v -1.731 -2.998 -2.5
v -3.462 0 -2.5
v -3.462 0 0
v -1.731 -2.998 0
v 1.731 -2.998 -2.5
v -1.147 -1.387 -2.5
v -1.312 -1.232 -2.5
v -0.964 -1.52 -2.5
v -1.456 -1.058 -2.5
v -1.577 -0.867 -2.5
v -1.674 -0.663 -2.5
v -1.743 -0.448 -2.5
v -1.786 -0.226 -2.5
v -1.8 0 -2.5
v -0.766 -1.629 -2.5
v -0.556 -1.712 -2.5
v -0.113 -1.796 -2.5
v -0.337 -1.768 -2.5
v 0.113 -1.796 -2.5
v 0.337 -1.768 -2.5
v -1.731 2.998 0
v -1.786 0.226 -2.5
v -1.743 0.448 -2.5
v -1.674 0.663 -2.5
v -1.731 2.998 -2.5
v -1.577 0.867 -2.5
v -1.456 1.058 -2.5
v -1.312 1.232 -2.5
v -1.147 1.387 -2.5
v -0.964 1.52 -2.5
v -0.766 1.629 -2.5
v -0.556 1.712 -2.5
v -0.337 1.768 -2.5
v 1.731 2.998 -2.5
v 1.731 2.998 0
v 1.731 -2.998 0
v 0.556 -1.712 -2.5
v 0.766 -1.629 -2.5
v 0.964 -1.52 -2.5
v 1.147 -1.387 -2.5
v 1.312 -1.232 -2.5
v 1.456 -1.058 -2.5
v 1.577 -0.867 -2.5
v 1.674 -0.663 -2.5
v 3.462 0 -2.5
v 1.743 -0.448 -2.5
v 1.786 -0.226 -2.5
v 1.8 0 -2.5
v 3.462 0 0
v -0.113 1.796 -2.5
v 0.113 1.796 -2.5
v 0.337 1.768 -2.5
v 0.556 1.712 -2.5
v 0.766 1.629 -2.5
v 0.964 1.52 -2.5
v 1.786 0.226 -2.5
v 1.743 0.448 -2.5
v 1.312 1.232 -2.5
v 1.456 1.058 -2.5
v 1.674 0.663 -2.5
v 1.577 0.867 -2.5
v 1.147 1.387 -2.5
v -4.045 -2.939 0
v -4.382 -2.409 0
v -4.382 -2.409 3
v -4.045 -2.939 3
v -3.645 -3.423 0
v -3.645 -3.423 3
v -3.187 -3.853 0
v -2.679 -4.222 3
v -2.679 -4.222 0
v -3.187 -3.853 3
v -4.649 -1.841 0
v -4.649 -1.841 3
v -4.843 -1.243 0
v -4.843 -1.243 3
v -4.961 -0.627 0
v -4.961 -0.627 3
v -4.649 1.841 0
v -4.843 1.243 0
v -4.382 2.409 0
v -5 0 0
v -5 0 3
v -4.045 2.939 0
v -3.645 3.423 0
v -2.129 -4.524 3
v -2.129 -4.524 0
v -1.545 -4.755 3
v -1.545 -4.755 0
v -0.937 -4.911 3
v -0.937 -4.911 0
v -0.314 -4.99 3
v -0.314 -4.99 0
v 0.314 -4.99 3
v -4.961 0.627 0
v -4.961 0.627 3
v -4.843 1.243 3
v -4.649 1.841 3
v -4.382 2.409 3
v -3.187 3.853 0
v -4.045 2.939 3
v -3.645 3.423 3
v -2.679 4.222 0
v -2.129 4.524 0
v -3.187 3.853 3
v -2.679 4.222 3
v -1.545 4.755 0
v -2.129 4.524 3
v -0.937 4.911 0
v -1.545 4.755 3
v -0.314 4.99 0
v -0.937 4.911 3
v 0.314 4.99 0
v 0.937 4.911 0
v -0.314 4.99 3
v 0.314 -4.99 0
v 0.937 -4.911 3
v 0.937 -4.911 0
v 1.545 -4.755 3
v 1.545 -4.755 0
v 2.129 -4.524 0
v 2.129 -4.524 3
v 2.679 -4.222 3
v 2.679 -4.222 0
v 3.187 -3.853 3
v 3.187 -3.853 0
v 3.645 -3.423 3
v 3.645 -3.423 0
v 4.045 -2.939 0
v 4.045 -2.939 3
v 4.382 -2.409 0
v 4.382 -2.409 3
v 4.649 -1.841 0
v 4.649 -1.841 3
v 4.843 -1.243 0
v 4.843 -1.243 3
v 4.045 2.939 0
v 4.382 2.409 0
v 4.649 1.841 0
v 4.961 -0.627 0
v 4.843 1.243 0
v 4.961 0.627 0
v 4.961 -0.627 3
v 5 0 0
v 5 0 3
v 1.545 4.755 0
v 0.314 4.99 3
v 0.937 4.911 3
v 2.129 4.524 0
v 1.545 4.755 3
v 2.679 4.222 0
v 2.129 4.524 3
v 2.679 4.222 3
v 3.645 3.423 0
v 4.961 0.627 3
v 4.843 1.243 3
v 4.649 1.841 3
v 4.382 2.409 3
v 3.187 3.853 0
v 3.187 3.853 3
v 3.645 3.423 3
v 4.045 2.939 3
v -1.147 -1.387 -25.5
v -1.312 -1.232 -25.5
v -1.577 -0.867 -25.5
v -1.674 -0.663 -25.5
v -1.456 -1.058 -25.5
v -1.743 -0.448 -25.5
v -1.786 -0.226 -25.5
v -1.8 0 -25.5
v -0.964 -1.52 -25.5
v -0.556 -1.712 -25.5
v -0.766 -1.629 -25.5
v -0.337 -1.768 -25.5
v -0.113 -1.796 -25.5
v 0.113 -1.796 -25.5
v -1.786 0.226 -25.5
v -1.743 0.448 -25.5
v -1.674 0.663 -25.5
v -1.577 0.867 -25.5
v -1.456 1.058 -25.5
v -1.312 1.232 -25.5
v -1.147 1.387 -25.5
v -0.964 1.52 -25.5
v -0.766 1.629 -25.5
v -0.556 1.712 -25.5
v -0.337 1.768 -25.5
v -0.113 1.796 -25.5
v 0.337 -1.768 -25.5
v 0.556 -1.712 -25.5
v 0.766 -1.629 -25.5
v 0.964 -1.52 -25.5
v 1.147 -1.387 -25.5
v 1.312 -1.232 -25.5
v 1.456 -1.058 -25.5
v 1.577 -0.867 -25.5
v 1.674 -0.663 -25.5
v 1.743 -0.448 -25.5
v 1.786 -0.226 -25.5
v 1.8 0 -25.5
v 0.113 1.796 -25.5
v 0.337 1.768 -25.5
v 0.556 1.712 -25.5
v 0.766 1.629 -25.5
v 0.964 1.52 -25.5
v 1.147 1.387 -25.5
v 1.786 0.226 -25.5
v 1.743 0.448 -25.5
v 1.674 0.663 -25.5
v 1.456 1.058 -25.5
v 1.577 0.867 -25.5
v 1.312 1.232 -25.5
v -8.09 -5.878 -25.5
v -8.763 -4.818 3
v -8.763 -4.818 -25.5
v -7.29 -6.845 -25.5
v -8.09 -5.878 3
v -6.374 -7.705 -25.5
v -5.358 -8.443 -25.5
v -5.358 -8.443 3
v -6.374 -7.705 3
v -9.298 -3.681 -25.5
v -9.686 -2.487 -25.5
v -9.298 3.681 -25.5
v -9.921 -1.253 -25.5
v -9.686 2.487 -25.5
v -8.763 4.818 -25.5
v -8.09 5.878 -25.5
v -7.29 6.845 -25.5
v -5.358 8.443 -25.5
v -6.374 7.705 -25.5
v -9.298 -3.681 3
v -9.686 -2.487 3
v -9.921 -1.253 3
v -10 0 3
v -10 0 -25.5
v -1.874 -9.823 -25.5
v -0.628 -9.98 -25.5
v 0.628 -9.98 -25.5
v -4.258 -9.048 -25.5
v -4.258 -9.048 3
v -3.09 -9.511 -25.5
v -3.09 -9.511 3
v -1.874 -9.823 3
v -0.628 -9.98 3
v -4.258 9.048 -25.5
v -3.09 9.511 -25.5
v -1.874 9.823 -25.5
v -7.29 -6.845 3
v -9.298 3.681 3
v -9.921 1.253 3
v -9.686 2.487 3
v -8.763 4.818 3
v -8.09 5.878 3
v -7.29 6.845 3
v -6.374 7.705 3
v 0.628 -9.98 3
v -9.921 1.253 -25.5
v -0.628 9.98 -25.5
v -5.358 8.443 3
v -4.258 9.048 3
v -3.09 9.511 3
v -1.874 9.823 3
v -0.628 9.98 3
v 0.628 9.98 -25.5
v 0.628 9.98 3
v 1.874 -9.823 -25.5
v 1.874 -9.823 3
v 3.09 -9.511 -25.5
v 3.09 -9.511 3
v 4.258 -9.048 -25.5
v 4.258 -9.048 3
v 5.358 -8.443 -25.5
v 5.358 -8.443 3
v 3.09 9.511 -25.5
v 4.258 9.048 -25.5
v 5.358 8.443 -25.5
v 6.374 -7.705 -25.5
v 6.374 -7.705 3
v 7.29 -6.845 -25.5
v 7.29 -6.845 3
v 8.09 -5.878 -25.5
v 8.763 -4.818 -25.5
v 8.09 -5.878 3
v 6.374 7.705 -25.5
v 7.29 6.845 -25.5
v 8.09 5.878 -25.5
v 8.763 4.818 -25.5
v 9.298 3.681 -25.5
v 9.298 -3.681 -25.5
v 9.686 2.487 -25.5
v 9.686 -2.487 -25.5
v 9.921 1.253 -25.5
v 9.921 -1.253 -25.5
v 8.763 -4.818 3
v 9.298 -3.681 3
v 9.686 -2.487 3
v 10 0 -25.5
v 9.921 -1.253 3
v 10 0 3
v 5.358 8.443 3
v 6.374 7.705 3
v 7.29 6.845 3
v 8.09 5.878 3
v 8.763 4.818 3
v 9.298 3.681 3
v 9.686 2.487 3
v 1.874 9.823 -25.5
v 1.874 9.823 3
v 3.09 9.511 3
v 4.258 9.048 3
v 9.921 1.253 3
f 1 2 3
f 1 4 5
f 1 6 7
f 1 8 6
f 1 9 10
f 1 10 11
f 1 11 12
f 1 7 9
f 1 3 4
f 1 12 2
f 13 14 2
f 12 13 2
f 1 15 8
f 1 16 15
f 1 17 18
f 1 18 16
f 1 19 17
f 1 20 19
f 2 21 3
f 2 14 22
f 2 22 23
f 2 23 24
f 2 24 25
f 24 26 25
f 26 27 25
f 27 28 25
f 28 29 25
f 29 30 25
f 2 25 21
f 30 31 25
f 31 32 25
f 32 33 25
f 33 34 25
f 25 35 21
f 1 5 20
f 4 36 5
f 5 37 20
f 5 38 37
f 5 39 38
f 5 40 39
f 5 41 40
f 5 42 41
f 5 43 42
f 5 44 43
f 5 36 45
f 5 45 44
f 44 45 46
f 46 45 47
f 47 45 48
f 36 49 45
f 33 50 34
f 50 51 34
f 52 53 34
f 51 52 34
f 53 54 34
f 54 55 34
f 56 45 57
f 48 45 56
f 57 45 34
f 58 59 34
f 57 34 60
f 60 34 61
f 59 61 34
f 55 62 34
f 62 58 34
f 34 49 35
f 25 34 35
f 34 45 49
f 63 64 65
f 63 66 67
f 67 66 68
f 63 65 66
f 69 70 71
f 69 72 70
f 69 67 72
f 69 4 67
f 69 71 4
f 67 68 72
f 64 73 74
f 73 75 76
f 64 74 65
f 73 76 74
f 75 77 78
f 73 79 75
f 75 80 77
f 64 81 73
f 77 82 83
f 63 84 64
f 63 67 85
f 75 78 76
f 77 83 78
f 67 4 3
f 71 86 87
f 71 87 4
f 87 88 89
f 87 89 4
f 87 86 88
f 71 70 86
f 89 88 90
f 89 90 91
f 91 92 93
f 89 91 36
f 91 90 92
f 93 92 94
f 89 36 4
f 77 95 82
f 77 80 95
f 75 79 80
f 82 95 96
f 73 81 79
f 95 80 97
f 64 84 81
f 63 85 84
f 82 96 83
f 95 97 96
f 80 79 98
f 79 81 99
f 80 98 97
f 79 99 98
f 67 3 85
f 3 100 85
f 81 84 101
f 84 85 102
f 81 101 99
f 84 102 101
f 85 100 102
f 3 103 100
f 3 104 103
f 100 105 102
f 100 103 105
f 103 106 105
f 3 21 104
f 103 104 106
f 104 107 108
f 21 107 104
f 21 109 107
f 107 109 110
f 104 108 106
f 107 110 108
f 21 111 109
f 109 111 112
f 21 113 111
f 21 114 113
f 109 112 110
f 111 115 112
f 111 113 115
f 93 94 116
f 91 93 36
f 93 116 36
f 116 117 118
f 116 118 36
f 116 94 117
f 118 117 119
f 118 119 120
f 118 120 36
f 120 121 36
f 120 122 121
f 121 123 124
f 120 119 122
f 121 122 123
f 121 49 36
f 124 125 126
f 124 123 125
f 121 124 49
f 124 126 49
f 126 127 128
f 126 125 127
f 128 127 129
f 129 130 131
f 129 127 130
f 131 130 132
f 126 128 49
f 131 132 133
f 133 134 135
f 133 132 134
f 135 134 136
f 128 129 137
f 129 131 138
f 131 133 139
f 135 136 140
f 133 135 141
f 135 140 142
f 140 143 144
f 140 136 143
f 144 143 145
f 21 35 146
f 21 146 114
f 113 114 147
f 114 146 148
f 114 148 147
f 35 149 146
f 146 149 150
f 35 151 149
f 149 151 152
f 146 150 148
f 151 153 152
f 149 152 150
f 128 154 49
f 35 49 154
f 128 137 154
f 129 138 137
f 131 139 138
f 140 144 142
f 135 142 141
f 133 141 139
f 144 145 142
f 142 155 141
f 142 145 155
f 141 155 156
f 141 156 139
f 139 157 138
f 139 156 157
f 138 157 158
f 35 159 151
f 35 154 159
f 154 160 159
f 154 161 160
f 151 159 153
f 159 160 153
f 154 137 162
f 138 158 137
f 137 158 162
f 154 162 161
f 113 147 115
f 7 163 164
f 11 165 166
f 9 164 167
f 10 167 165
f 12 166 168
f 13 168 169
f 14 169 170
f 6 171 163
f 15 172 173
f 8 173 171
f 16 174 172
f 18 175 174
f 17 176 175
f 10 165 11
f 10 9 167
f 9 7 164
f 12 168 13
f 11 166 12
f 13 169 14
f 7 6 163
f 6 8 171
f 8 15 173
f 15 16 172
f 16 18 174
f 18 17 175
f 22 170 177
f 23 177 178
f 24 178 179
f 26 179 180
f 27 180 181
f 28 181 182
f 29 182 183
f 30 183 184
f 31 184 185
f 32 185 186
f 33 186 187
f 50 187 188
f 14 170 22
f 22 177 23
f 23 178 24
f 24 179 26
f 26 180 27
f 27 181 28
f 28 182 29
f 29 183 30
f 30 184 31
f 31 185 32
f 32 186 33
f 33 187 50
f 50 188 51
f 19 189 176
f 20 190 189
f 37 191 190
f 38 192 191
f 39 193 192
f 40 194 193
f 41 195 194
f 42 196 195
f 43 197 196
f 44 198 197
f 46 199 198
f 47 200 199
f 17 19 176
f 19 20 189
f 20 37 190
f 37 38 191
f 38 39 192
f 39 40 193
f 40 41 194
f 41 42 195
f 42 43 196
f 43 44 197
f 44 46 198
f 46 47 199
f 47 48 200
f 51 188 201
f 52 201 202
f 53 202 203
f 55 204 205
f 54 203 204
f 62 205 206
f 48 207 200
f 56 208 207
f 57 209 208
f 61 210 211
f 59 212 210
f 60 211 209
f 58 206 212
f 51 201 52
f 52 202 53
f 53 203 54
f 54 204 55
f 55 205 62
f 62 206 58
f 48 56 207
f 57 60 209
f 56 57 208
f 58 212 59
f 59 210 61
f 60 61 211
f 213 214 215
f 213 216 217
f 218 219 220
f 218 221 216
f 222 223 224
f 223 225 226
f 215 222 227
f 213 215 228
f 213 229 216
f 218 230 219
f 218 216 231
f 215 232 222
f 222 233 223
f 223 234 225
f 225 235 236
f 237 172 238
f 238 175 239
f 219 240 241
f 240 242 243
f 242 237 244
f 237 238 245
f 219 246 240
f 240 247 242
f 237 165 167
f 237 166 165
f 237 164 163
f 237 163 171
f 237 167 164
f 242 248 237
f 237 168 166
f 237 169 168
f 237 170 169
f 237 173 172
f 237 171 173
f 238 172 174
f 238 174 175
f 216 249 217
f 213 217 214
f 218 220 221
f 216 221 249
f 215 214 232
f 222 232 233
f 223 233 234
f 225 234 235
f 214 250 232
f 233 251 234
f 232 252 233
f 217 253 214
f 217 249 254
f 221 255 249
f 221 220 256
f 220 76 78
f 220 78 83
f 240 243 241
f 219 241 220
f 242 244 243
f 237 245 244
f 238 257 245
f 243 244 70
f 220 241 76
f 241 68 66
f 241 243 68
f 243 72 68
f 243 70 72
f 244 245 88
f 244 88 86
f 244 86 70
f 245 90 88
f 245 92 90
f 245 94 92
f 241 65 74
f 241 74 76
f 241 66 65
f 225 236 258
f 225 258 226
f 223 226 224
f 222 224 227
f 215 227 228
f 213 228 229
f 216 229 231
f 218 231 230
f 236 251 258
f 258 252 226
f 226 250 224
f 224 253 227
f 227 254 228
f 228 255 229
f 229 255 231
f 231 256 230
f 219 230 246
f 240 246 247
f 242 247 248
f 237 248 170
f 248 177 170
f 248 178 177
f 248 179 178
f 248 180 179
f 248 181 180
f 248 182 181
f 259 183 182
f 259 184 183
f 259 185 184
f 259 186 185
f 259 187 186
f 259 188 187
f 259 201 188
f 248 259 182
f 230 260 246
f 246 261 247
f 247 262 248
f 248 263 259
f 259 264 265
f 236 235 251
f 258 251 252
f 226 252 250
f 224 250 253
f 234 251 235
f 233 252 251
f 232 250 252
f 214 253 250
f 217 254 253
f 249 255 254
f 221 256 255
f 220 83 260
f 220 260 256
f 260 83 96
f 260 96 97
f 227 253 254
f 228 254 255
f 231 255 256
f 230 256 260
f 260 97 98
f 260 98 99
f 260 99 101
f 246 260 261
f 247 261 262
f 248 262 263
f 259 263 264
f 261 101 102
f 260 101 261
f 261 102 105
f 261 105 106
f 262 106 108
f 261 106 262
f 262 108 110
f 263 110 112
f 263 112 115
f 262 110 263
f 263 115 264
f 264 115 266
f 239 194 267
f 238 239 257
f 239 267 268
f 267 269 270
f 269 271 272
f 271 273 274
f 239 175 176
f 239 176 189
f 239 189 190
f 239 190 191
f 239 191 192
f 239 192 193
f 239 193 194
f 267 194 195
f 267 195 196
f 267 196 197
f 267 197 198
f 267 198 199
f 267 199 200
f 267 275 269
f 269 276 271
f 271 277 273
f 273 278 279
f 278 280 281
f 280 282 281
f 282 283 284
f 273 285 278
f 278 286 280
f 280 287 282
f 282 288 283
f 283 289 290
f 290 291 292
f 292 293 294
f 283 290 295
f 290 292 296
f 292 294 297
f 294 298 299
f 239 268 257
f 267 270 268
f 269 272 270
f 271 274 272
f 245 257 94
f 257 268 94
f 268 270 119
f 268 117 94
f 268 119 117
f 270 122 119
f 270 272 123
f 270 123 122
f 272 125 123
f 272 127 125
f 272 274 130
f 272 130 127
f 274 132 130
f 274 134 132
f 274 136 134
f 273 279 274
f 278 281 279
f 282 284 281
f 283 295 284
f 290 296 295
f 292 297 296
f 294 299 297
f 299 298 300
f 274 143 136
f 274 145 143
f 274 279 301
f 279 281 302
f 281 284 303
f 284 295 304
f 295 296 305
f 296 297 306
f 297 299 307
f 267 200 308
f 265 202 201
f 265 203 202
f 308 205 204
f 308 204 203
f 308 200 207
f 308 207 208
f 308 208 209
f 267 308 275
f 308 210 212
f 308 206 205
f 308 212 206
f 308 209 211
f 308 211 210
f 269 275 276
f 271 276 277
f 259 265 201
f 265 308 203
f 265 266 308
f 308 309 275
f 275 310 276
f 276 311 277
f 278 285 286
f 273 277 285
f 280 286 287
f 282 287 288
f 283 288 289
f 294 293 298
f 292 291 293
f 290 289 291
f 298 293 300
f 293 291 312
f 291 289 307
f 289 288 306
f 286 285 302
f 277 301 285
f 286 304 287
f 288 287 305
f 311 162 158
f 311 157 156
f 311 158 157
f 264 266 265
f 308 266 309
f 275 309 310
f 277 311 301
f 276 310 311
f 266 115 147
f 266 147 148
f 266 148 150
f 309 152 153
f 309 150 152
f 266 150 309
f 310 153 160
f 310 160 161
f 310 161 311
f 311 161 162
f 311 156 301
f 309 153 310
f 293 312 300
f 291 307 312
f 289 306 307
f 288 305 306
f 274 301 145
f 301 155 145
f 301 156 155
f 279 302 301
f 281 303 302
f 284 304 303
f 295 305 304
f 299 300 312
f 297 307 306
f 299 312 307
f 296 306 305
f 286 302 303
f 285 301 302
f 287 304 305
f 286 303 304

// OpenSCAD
$fn = 50;

difference() {
	union() {
		translate(v = [0, 0, -25.5]) {
			cylinder(h = 28.5, r = 10.0);
		}
	}
	union() {
		translate(v = [0, 0, 0]) {
			rotate(a = [0, 0, 0]) {
				difference() {
					union() {
						translate(v = [0, 0, -2.5]) {
							linear_extrude(height = 2.5) {
								polygon(points = [[3.4619999999999997, 0.0], [1.7310000000000003, 2.9981799479017264], [-1.7309999999999992, 2.9981799479017264], [-3.4619999999999997, 4.2397272186481365e-16], [-1.7310000000000014, -2.998179947901726], [1.7309999999999977, -2.9981799479017277]]);
							}
						}
					}
					union();
				}
			}
		}
		#cylinder(h = 3, r = 5.0);
		#translate(v = [0, 0, -100.0]) {
			cylinder(h = 200, r = 1.8);
		}
	}
}
